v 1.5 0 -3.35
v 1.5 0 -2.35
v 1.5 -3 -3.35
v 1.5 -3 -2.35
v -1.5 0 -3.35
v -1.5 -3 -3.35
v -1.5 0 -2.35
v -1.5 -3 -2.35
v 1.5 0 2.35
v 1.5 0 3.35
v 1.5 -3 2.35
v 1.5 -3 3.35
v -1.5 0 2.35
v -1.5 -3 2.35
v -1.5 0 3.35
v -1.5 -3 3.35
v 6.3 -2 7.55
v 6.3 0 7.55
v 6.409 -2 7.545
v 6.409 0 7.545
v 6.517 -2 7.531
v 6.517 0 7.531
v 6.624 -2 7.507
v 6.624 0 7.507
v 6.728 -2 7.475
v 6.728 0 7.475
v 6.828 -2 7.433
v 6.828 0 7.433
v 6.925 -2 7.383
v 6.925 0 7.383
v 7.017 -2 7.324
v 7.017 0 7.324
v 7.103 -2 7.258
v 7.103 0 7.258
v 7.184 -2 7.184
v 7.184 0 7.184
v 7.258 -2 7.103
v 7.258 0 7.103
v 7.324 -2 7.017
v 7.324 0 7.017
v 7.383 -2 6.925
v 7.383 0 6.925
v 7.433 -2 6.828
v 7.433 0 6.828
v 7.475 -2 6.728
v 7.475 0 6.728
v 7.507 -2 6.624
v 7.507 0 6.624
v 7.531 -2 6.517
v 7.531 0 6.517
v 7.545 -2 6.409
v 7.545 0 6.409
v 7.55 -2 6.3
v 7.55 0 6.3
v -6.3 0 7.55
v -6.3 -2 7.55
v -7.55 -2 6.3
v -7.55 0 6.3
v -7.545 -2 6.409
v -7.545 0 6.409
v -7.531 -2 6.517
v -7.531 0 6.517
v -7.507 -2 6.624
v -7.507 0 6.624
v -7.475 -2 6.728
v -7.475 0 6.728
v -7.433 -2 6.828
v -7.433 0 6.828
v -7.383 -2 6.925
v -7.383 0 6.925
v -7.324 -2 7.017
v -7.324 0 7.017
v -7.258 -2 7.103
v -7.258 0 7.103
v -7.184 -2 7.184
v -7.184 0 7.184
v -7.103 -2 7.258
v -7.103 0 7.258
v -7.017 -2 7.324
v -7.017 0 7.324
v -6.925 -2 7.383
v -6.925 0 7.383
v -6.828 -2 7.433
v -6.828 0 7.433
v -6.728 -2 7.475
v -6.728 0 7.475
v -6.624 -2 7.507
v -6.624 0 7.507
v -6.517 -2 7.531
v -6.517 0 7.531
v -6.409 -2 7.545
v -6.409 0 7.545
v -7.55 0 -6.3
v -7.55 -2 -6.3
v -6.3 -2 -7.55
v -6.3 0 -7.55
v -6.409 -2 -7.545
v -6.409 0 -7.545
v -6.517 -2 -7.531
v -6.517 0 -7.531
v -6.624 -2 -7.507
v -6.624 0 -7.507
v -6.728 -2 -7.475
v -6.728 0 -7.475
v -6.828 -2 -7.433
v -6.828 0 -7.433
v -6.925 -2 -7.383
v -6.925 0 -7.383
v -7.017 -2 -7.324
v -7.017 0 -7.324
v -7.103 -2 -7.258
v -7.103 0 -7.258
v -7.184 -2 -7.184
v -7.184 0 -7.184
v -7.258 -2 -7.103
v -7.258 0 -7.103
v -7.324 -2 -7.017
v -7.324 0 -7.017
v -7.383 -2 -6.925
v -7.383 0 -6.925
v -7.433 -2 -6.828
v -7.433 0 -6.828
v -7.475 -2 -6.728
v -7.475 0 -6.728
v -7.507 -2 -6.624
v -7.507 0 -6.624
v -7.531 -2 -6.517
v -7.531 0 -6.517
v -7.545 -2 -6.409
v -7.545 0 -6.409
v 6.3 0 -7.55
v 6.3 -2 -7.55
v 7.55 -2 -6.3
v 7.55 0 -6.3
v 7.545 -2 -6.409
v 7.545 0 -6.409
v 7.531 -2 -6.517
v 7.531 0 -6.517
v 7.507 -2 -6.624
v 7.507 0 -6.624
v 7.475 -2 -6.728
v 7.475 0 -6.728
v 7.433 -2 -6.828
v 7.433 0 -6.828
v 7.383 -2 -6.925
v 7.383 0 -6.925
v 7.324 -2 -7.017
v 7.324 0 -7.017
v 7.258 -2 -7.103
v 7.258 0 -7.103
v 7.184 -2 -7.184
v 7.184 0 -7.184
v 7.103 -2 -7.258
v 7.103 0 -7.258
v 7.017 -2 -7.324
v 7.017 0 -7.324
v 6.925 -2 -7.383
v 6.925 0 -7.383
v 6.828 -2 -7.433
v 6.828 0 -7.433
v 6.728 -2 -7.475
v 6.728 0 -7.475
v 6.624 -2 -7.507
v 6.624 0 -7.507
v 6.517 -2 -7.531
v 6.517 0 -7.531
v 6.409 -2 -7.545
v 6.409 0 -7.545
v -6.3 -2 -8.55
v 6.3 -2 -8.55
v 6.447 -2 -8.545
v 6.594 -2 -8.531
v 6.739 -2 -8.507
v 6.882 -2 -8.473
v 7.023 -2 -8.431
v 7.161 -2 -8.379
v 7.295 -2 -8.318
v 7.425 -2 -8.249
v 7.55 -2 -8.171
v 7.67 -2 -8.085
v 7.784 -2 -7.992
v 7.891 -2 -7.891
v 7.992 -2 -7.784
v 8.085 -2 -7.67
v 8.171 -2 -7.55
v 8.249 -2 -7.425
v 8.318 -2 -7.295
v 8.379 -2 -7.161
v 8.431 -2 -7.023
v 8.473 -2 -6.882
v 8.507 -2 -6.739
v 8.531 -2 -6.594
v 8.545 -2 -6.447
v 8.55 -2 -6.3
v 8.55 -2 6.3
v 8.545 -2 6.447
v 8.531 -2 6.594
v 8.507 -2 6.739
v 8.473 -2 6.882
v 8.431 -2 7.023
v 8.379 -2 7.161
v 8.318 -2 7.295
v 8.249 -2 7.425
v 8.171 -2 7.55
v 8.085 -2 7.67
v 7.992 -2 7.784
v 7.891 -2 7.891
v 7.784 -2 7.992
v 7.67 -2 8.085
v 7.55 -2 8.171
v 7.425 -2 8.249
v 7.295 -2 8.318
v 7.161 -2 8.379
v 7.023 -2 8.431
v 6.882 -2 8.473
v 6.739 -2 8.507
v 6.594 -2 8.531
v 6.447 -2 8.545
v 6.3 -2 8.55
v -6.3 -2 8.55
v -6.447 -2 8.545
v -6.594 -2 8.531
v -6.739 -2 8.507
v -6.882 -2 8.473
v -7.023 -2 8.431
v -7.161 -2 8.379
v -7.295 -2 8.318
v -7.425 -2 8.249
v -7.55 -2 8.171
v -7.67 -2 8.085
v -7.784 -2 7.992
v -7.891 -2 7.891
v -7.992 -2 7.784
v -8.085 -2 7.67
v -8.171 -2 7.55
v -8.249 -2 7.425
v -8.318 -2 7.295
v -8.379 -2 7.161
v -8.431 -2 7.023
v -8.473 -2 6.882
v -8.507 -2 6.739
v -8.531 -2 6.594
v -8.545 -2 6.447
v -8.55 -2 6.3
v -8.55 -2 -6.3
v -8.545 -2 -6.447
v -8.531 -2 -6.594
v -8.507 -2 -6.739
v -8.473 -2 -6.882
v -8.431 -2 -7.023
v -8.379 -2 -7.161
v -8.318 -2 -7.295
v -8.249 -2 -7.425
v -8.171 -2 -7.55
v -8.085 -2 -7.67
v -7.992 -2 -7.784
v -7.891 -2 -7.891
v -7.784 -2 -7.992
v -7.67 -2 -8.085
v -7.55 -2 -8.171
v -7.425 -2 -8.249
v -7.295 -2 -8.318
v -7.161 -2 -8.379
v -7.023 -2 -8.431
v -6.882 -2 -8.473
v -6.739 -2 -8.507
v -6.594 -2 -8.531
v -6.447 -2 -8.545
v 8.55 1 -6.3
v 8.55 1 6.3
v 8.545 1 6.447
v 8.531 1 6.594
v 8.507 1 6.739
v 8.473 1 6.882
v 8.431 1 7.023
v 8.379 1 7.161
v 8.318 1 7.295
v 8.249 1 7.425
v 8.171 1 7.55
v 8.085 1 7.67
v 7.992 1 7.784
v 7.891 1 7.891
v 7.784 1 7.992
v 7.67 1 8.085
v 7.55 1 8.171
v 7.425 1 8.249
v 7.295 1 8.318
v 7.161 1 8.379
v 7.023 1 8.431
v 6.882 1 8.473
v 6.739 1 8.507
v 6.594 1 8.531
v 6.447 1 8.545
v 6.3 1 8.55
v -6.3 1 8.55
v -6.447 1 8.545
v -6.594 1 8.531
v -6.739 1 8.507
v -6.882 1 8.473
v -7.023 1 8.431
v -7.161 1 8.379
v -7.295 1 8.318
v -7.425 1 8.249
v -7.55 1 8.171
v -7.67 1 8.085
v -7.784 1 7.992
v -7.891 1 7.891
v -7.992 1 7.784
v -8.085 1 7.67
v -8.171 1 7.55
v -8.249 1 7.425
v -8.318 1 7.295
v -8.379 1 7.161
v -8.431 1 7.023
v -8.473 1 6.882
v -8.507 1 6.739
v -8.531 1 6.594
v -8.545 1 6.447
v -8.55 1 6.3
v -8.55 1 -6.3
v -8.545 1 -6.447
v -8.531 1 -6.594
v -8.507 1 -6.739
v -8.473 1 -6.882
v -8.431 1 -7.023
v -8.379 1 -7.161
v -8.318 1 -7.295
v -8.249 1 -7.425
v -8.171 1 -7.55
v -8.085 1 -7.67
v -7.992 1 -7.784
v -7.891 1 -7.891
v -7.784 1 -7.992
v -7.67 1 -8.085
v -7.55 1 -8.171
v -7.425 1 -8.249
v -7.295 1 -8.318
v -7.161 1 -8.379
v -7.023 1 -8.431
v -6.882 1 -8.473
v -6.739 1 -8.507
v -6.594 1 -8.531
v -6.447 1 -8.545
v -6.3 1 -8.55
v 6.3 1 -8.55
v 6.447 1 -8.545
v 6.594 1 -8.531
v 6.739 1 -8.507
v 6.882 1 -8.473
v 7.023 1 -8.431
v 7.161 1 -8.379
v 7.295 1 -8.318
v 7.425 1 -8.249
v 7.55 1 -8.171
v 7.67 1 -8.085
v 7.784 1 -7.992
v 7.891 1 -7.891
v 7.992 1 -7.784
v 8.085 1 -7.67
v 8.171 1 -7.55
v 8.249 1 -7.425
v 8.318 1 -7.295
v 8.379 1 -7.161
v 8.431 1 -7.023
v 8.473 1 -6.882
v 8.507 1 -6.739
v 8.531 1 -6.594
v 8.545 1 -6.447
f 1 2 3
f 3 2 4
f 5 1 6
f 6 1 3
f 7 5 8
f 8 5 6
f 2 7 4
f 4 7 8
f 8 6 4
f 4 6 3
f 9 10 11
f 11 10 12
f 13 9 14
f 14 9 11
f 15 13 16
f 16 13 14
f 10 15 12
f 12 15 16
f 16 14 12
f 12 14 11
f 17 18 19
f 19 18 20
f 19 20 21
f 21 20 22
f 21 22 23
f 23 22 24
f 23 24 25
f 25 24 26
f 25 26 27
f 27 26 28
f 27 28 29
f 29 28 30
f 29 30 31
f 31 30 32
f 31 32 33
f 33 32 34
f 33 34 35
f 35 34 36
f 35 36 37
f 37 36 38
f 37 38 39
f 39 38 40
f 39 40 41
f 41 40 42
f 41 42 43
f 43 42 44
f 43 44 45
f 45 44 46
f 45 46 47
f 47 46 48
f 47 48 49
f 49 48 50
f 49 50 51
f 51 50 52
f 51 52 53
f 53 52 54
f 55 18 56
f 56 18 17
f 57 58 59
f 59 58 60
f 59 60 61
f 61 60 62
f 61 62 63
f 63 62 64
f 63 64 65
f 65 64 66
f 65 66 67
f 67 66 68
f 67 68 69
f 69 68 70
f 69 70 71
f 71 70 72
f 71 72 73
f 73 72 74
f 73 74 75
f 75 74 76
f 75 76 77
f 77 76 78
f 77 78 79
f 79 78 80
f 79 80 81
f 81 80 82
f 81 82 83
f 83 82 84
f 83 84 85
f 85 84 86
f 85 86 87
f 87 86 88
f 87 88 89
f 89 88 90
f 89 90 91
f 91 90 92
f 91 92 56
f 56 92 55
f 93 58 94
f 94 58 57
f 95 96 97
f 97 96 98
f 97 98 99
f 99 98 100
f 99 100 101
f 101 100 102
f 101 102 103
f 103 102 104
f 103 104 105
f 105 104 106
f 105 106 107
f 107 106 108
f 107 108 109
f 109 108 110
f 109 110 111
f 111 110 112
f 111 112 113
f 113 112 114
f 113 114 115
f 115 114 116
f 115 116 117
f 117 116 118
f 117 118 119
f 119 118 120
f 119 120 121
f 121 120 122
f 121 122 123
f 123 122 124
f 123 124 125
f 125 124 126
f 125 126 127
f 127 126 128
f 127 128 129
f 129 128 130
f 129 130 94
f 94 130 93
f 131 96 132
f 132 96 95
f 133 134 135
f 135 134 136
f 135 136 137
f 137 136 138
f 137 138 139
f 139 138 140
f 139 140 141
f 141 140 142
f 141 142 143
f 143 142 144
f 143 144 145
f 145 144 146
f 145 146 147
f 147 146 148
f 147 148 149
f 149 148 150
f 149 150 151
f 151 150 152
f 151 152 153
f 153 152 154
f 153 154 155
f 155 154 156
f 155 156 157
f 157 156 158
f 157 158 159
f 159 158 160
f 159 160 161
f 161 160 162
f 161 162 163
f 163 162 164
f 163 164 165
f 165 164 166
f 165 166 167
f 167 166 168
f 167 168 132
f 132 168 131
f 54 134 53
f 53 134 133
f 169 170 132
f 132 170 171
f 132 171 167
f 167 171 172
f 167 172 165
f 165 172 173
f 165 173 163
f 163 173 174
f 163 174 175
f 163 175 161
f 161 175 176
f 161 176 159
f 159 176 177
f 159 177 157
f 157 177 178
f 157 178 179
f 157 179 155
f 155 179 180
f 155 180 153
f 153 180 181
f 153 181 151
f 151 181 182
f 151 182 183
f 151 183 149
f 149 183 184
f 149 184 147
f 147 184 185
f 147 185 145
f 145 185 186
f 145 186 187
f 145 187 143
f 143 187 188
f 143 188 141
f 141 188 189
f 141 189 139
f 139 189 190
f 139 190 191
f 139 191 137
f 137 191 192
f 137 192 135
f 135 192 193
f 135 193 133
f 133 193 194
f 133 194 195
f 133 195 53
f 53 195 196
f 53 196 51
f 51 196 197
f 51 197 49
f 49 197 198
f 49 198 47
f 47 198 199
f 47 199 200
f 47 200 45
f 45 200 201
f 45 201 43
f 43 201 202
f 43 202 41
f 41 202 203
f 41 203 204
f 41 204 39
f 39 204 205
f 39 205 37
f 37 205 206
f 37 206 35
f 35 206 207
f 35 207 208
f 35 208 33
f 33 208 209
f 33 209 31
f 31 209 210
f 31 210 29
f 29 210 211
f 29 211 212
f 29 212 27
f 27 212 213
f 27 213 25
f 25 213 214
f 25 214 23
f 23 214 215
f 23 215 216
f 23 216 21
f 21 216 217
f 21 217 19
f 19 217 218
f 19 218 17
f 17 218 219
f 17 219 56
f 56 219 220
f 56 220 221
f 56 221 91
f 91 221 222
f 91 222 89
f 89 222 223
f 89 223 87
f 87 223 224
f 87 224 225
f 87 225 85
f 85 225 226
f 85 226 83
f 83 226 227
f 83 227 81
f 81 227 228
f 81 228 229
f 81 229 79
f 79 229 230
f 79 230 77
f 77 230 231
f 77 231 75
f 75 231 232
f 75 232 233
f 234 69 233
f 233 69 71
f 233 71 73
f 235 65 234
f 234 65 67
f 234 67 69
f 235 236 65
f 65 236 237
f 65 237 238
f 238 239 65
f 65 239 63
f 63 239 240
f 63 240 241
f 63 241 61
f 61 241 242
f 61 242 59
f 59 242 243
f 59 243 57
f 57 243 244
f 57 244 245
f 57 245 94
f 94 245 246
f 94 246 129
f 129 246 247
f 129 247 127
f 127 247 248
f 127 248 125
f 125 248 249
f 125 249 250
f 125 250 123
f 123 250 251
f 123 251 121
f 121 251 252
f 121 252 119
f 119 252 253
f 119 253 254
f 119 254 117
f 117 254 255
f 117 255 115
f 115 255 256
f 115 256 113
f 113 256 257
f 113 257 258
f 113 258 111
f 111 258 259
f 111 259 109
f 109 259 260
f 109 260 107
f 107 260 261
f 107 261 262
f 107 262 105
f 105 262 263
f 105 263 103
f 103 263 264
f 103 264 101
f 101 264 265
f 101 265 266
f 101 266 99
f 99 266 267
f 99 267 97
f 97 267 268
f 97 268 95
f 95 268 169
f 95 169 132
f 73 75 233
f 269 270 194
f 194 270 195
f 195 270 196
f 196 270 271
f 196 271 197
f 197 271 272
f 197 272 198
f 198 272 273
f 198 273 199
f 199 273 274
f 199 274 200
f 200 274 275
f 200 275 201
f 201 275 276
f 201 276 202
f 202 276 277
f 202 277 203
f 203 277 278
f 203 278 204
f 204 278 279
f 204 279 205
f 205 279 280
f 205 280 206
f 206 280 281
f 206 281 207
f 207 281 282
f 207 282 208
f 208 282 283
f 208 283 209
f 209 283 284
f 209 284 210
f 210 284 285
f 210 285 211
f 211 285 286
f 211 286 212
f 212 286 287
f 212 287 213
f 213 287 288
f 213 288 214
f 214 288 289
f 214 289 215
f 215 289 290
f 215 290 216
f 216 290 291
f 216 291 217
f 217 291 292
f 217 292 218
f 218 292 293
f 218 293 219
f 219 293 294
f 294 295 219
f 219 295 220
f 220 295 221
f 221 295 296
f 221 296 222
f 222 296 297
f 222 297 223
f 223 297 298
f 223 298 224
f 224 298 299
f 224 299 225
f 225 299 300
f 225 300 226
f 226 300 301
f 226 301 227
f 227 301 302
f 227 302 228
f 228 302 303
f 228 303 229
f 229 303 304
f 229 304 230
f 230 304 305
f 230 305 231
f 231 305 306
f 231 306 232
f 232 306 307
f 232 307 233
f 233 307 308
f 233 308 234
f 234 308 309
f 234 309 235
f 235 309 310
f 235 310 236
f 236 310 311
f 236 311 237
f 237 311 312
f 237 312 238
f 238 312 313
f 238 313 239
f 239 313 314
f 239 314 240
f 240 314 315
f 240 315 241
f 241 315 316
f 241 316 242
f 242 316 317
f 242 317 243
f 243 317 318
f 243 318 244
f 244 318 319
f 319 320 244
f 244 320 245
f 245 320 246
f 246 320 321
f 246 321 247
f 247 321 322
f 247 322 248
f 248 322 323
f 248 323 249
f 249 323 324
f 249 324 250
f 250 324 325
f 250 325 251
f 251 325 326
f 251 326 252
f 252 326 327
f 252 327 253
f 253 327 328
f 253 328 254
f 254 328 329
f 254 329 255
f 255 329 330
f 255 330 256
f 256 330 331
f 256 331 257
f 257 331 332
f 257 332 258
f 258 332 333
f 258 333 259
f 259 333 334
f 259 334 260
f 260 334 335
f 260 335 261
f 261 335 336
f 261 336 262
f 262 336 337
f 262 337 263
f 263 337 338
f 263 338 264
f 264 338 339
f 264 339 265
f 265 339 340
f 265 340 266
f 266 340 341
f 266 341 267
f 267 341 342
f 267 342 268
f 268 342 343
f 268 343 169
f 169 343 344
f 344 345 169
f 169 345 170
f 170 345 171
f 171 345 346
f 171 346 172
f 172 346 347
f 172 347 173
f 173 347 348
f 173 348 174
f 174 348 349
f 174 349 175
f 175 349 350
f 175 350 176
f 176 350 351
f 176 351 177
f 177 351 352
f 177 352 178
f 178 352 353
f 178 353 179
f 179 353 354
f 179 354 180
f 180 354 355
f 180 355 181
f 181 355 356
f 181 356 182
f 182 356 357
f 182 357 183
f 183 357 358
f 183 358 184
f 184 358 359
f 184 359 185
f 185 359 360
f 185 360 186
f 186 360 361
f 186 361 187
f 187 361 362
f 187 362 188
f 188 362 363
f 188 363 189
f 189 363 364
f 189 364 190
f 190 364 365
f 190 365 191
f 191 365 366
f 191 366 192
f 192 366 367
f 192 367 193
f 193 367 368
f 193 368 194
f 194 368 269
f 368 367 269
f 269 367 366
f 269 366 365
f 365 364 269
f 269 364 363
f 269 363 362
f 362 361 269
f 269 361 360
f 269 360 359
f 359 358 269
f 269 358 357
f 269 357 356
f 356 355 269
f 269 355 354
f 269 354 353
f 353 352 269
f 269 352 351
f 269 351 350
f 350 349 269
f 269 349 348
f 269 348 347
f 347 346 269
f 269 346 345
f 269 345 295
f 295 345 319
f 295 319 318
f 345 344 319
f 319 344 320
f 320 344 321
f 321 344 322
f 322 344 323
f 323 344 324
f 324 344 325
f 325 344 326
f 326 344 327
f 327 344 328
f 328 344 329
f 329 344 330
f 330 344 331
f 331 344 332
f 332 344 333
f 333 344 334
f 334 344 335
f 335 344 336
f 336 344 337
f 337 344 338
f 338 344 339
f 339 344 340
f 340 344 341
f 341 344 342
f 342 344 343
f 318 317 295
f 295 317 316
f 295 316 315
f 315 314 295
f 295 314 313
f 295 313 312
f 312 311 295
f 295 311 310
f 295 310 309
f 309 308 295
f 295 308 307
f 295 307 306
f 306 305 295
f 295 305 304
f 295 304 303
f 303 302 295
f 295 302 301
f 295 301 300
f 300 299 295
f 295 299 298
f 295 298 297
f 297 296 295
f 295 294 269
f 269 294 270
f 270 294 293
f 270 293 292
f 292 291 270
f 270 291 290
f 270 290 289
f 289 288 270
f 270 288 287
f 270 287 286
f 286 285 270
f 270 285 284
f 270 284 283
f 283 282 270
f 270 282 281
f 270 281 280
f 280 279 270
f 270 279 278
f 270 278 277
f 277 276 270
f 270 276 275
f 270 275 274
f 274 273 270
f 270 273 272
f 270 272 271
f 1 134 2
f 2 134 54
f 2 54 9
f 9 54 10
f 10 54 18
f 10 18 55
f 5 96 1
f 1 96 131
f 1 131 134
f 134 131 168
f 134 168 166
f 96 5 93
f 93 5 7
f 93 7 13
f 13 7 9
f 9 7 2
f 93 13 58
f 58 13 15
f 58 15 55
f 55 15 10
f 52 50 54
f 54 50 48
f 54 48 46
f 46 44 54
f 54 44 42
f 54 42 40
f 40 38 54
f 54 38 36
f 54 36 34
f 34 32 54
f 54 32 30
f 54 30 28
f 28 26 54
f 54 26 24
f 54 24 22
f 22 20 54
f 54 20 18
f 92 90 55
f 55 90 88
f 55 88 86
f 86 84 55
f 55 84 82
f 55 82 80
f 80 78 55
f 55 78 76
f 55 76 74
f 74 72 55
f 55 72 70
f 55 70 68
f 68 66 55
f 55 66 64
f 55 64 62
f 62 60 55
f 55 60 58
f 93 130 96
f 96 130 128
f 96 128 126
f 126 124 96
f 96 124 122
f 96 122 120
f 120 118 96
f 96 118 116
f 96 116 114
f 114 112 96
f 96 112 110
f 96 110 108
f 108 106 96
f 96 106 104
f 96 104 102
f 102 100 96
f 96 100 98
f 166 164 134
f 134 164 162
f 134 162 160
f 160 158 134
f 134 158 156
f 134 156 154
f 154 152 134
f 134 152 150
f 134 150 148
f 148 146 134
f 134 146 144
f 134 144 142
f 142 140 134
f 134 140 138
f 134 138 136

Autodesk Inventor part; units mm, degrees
ref_plane "YZ Plane" through (0, 0, 0) normal (1, 0, 0) x (0, 1, 0)
ref_plane "XZ Plane" through (0, 0, 0) normal (0, 1, 0) x (-1, 0, 0)
ref_plane "XY Plane" through (0, 0, 0) normal (0, 0, 1) x (1, 0, 0)
sketch "Sketch1" plane through (0, 0, 0) normal (0, 1, 0) x (-1, 0, 0)
  line L0 (-8.55, 8.55) -> (8.55, 8.55)
  line L1 (8.55, 8.55) -> (8.55, -8.55)
  line L2 (8.55, -8.55) -> (-8.55, -8.55)
  line L3 (-8.55, -8.55) -> (-8.55, 8.55)
  line L4 (-8.55, 8.55) -> (8.55, -8.55) construction
  line L5 (8.55, 8.55) -> (-8.55, -8.55) construction
  line L6 (7.55, 7.55) -> (-7.55, 7.55)
  line L7 (-7.55, 7.55) -> (-7.55, -7.55)
  line L8 (-7.55, -7.55) -> (7.55, -7.55)
  line L9 (7.55, -7.55) -> (7.55, 7.55)
  line L10 (7.55, 7.55) -> (-7.55, -7.55) construction
  line L11 (-7.55, 7.55) -> (7.55, -7.55) construction
  line L12 (1.5, 2.35) -> (-1.5, 2.35)
  line L13 (-1.5, 2.35) -> (-1.5, 3.35)
  line L14 (-1.5, 3.35) -> (1.5, 3.35)
  line L15 (1.5, 3.35) -> (1.5, 2.35)
  line L16 (1.5, 2.35) -> (-1.5, 3.35) construction
  line L17 (-1.5, 2.35) -> (1.5, 3.35) construction
  line L18 (1.5, -3.35) -> (-1.5, -3.35)
  line L19 (-1.5, -3.35) -> (-1.5, -2.35)
  line L20 (-1.5, -2.35) -> (1.5, -2.35)
  line L21 (1.5, -2.35) -> (1.5, -3.35)
  line L22 (1.5, -3.35) -> (-1.5, -2.35) construction
  line L23 (-1.5, -3.35) -> (1.5, -2.35) construction
  line L24 (0, 0) -> (-1, 0)
  circle A0 centre (-6.3, 6.3) radius 1.25
  circle A1 centre (-6.3, 6.3) radius 2.25
  circle A2 centre (-6.3, -6.3) radius 1.25
  circle A3 centre (-6.3, -6.3) radius 2.25
  circle A4 centre (6.3, -6.3) radius 1.25
  circle A5 centre (6.3, -6.3) radius 2.25
  circle A6 centre (6.3, 6.3) radius 1.25
  circle A7 centre (6.3, 6.3) radius 2.25
  point P0 (0, 2.85)
  point P1 (0, -2.85)
  point P2 (-8.55, 6.3)
  point P3 (-8.55, -6.3)
  point P4 (-6.3, -8.55)
  point P5 (6.3, -8.55)
  point P6 (8.55, -6.3)
  point P7 (8.55, 6.3)
  point P8 (6.3, 8.55)
  point P9 (-6.3, 8.55)
  point P10 (-7.55, 6.3)
  point P11 (-6.3, 7.55)
  point P12 (6.3, 7.55)
  point P13 (7.55, 6.3)
  point P14 (7.55, -6.3)
  point P15 (6.3, -7.55)
  point P16 (-6.3, -7.55)
  point P17 (-7.55, -6.3)
  dimension "d0" = 17.1
  dimension "d1" = 17.1
  dimension "d4" = 1
  dimension "d5" = 1
  dimension "d6" = 5.7
  dimension "d7" = 3
  dimension "d8" = 1
  dimension "d10" = 2.5
extrude "Extrusion2" add sketch "Sketch1" along normal blind 1 contours L0 A7 L6 A1 | A1 L6 L7 | A1 L7 A3 L3 | A7 L9 L6 | A1 L7 A0 L6 | L6 A7 L9 A5 L8 A3 L7 A1 | A3 L7 L8 | L1 A5 L9 A7 | L6 A6 L9 A7 | A0 L7 L6 | A0 | A3 L8 A2 L7 | A3 L8 A5 L2 | A5 L8 L9 | L6 L9 A6 | A6 | A2 L8 L7 | A2 | L9 A4 L8 A5 | A4 | L9 L8 A4 | L12 L13 L14 L15 | L18 L19 L20 L21
extrude "Extrusion3" add sketch "Sketch1" against normal blind 2 contours L0 A7 L6 A1 | A1 L6 L7 | A1 L7 A3 L3 | A7 L9 L6 | A3 L7 L8 | L1 A5 L9 A7 | A0 L7 L6 | A3 L8 A5 L2 | A5 L8 L9 | L6 L9 A6 | A2 L8 L7 | L9 L8 A4
extrude "Extrusion4" add sketch "Sketch1" against normal blind 3 contours L12 L13 L14 L15 | L18 L19 L20 L21
properties part number "keycap"
